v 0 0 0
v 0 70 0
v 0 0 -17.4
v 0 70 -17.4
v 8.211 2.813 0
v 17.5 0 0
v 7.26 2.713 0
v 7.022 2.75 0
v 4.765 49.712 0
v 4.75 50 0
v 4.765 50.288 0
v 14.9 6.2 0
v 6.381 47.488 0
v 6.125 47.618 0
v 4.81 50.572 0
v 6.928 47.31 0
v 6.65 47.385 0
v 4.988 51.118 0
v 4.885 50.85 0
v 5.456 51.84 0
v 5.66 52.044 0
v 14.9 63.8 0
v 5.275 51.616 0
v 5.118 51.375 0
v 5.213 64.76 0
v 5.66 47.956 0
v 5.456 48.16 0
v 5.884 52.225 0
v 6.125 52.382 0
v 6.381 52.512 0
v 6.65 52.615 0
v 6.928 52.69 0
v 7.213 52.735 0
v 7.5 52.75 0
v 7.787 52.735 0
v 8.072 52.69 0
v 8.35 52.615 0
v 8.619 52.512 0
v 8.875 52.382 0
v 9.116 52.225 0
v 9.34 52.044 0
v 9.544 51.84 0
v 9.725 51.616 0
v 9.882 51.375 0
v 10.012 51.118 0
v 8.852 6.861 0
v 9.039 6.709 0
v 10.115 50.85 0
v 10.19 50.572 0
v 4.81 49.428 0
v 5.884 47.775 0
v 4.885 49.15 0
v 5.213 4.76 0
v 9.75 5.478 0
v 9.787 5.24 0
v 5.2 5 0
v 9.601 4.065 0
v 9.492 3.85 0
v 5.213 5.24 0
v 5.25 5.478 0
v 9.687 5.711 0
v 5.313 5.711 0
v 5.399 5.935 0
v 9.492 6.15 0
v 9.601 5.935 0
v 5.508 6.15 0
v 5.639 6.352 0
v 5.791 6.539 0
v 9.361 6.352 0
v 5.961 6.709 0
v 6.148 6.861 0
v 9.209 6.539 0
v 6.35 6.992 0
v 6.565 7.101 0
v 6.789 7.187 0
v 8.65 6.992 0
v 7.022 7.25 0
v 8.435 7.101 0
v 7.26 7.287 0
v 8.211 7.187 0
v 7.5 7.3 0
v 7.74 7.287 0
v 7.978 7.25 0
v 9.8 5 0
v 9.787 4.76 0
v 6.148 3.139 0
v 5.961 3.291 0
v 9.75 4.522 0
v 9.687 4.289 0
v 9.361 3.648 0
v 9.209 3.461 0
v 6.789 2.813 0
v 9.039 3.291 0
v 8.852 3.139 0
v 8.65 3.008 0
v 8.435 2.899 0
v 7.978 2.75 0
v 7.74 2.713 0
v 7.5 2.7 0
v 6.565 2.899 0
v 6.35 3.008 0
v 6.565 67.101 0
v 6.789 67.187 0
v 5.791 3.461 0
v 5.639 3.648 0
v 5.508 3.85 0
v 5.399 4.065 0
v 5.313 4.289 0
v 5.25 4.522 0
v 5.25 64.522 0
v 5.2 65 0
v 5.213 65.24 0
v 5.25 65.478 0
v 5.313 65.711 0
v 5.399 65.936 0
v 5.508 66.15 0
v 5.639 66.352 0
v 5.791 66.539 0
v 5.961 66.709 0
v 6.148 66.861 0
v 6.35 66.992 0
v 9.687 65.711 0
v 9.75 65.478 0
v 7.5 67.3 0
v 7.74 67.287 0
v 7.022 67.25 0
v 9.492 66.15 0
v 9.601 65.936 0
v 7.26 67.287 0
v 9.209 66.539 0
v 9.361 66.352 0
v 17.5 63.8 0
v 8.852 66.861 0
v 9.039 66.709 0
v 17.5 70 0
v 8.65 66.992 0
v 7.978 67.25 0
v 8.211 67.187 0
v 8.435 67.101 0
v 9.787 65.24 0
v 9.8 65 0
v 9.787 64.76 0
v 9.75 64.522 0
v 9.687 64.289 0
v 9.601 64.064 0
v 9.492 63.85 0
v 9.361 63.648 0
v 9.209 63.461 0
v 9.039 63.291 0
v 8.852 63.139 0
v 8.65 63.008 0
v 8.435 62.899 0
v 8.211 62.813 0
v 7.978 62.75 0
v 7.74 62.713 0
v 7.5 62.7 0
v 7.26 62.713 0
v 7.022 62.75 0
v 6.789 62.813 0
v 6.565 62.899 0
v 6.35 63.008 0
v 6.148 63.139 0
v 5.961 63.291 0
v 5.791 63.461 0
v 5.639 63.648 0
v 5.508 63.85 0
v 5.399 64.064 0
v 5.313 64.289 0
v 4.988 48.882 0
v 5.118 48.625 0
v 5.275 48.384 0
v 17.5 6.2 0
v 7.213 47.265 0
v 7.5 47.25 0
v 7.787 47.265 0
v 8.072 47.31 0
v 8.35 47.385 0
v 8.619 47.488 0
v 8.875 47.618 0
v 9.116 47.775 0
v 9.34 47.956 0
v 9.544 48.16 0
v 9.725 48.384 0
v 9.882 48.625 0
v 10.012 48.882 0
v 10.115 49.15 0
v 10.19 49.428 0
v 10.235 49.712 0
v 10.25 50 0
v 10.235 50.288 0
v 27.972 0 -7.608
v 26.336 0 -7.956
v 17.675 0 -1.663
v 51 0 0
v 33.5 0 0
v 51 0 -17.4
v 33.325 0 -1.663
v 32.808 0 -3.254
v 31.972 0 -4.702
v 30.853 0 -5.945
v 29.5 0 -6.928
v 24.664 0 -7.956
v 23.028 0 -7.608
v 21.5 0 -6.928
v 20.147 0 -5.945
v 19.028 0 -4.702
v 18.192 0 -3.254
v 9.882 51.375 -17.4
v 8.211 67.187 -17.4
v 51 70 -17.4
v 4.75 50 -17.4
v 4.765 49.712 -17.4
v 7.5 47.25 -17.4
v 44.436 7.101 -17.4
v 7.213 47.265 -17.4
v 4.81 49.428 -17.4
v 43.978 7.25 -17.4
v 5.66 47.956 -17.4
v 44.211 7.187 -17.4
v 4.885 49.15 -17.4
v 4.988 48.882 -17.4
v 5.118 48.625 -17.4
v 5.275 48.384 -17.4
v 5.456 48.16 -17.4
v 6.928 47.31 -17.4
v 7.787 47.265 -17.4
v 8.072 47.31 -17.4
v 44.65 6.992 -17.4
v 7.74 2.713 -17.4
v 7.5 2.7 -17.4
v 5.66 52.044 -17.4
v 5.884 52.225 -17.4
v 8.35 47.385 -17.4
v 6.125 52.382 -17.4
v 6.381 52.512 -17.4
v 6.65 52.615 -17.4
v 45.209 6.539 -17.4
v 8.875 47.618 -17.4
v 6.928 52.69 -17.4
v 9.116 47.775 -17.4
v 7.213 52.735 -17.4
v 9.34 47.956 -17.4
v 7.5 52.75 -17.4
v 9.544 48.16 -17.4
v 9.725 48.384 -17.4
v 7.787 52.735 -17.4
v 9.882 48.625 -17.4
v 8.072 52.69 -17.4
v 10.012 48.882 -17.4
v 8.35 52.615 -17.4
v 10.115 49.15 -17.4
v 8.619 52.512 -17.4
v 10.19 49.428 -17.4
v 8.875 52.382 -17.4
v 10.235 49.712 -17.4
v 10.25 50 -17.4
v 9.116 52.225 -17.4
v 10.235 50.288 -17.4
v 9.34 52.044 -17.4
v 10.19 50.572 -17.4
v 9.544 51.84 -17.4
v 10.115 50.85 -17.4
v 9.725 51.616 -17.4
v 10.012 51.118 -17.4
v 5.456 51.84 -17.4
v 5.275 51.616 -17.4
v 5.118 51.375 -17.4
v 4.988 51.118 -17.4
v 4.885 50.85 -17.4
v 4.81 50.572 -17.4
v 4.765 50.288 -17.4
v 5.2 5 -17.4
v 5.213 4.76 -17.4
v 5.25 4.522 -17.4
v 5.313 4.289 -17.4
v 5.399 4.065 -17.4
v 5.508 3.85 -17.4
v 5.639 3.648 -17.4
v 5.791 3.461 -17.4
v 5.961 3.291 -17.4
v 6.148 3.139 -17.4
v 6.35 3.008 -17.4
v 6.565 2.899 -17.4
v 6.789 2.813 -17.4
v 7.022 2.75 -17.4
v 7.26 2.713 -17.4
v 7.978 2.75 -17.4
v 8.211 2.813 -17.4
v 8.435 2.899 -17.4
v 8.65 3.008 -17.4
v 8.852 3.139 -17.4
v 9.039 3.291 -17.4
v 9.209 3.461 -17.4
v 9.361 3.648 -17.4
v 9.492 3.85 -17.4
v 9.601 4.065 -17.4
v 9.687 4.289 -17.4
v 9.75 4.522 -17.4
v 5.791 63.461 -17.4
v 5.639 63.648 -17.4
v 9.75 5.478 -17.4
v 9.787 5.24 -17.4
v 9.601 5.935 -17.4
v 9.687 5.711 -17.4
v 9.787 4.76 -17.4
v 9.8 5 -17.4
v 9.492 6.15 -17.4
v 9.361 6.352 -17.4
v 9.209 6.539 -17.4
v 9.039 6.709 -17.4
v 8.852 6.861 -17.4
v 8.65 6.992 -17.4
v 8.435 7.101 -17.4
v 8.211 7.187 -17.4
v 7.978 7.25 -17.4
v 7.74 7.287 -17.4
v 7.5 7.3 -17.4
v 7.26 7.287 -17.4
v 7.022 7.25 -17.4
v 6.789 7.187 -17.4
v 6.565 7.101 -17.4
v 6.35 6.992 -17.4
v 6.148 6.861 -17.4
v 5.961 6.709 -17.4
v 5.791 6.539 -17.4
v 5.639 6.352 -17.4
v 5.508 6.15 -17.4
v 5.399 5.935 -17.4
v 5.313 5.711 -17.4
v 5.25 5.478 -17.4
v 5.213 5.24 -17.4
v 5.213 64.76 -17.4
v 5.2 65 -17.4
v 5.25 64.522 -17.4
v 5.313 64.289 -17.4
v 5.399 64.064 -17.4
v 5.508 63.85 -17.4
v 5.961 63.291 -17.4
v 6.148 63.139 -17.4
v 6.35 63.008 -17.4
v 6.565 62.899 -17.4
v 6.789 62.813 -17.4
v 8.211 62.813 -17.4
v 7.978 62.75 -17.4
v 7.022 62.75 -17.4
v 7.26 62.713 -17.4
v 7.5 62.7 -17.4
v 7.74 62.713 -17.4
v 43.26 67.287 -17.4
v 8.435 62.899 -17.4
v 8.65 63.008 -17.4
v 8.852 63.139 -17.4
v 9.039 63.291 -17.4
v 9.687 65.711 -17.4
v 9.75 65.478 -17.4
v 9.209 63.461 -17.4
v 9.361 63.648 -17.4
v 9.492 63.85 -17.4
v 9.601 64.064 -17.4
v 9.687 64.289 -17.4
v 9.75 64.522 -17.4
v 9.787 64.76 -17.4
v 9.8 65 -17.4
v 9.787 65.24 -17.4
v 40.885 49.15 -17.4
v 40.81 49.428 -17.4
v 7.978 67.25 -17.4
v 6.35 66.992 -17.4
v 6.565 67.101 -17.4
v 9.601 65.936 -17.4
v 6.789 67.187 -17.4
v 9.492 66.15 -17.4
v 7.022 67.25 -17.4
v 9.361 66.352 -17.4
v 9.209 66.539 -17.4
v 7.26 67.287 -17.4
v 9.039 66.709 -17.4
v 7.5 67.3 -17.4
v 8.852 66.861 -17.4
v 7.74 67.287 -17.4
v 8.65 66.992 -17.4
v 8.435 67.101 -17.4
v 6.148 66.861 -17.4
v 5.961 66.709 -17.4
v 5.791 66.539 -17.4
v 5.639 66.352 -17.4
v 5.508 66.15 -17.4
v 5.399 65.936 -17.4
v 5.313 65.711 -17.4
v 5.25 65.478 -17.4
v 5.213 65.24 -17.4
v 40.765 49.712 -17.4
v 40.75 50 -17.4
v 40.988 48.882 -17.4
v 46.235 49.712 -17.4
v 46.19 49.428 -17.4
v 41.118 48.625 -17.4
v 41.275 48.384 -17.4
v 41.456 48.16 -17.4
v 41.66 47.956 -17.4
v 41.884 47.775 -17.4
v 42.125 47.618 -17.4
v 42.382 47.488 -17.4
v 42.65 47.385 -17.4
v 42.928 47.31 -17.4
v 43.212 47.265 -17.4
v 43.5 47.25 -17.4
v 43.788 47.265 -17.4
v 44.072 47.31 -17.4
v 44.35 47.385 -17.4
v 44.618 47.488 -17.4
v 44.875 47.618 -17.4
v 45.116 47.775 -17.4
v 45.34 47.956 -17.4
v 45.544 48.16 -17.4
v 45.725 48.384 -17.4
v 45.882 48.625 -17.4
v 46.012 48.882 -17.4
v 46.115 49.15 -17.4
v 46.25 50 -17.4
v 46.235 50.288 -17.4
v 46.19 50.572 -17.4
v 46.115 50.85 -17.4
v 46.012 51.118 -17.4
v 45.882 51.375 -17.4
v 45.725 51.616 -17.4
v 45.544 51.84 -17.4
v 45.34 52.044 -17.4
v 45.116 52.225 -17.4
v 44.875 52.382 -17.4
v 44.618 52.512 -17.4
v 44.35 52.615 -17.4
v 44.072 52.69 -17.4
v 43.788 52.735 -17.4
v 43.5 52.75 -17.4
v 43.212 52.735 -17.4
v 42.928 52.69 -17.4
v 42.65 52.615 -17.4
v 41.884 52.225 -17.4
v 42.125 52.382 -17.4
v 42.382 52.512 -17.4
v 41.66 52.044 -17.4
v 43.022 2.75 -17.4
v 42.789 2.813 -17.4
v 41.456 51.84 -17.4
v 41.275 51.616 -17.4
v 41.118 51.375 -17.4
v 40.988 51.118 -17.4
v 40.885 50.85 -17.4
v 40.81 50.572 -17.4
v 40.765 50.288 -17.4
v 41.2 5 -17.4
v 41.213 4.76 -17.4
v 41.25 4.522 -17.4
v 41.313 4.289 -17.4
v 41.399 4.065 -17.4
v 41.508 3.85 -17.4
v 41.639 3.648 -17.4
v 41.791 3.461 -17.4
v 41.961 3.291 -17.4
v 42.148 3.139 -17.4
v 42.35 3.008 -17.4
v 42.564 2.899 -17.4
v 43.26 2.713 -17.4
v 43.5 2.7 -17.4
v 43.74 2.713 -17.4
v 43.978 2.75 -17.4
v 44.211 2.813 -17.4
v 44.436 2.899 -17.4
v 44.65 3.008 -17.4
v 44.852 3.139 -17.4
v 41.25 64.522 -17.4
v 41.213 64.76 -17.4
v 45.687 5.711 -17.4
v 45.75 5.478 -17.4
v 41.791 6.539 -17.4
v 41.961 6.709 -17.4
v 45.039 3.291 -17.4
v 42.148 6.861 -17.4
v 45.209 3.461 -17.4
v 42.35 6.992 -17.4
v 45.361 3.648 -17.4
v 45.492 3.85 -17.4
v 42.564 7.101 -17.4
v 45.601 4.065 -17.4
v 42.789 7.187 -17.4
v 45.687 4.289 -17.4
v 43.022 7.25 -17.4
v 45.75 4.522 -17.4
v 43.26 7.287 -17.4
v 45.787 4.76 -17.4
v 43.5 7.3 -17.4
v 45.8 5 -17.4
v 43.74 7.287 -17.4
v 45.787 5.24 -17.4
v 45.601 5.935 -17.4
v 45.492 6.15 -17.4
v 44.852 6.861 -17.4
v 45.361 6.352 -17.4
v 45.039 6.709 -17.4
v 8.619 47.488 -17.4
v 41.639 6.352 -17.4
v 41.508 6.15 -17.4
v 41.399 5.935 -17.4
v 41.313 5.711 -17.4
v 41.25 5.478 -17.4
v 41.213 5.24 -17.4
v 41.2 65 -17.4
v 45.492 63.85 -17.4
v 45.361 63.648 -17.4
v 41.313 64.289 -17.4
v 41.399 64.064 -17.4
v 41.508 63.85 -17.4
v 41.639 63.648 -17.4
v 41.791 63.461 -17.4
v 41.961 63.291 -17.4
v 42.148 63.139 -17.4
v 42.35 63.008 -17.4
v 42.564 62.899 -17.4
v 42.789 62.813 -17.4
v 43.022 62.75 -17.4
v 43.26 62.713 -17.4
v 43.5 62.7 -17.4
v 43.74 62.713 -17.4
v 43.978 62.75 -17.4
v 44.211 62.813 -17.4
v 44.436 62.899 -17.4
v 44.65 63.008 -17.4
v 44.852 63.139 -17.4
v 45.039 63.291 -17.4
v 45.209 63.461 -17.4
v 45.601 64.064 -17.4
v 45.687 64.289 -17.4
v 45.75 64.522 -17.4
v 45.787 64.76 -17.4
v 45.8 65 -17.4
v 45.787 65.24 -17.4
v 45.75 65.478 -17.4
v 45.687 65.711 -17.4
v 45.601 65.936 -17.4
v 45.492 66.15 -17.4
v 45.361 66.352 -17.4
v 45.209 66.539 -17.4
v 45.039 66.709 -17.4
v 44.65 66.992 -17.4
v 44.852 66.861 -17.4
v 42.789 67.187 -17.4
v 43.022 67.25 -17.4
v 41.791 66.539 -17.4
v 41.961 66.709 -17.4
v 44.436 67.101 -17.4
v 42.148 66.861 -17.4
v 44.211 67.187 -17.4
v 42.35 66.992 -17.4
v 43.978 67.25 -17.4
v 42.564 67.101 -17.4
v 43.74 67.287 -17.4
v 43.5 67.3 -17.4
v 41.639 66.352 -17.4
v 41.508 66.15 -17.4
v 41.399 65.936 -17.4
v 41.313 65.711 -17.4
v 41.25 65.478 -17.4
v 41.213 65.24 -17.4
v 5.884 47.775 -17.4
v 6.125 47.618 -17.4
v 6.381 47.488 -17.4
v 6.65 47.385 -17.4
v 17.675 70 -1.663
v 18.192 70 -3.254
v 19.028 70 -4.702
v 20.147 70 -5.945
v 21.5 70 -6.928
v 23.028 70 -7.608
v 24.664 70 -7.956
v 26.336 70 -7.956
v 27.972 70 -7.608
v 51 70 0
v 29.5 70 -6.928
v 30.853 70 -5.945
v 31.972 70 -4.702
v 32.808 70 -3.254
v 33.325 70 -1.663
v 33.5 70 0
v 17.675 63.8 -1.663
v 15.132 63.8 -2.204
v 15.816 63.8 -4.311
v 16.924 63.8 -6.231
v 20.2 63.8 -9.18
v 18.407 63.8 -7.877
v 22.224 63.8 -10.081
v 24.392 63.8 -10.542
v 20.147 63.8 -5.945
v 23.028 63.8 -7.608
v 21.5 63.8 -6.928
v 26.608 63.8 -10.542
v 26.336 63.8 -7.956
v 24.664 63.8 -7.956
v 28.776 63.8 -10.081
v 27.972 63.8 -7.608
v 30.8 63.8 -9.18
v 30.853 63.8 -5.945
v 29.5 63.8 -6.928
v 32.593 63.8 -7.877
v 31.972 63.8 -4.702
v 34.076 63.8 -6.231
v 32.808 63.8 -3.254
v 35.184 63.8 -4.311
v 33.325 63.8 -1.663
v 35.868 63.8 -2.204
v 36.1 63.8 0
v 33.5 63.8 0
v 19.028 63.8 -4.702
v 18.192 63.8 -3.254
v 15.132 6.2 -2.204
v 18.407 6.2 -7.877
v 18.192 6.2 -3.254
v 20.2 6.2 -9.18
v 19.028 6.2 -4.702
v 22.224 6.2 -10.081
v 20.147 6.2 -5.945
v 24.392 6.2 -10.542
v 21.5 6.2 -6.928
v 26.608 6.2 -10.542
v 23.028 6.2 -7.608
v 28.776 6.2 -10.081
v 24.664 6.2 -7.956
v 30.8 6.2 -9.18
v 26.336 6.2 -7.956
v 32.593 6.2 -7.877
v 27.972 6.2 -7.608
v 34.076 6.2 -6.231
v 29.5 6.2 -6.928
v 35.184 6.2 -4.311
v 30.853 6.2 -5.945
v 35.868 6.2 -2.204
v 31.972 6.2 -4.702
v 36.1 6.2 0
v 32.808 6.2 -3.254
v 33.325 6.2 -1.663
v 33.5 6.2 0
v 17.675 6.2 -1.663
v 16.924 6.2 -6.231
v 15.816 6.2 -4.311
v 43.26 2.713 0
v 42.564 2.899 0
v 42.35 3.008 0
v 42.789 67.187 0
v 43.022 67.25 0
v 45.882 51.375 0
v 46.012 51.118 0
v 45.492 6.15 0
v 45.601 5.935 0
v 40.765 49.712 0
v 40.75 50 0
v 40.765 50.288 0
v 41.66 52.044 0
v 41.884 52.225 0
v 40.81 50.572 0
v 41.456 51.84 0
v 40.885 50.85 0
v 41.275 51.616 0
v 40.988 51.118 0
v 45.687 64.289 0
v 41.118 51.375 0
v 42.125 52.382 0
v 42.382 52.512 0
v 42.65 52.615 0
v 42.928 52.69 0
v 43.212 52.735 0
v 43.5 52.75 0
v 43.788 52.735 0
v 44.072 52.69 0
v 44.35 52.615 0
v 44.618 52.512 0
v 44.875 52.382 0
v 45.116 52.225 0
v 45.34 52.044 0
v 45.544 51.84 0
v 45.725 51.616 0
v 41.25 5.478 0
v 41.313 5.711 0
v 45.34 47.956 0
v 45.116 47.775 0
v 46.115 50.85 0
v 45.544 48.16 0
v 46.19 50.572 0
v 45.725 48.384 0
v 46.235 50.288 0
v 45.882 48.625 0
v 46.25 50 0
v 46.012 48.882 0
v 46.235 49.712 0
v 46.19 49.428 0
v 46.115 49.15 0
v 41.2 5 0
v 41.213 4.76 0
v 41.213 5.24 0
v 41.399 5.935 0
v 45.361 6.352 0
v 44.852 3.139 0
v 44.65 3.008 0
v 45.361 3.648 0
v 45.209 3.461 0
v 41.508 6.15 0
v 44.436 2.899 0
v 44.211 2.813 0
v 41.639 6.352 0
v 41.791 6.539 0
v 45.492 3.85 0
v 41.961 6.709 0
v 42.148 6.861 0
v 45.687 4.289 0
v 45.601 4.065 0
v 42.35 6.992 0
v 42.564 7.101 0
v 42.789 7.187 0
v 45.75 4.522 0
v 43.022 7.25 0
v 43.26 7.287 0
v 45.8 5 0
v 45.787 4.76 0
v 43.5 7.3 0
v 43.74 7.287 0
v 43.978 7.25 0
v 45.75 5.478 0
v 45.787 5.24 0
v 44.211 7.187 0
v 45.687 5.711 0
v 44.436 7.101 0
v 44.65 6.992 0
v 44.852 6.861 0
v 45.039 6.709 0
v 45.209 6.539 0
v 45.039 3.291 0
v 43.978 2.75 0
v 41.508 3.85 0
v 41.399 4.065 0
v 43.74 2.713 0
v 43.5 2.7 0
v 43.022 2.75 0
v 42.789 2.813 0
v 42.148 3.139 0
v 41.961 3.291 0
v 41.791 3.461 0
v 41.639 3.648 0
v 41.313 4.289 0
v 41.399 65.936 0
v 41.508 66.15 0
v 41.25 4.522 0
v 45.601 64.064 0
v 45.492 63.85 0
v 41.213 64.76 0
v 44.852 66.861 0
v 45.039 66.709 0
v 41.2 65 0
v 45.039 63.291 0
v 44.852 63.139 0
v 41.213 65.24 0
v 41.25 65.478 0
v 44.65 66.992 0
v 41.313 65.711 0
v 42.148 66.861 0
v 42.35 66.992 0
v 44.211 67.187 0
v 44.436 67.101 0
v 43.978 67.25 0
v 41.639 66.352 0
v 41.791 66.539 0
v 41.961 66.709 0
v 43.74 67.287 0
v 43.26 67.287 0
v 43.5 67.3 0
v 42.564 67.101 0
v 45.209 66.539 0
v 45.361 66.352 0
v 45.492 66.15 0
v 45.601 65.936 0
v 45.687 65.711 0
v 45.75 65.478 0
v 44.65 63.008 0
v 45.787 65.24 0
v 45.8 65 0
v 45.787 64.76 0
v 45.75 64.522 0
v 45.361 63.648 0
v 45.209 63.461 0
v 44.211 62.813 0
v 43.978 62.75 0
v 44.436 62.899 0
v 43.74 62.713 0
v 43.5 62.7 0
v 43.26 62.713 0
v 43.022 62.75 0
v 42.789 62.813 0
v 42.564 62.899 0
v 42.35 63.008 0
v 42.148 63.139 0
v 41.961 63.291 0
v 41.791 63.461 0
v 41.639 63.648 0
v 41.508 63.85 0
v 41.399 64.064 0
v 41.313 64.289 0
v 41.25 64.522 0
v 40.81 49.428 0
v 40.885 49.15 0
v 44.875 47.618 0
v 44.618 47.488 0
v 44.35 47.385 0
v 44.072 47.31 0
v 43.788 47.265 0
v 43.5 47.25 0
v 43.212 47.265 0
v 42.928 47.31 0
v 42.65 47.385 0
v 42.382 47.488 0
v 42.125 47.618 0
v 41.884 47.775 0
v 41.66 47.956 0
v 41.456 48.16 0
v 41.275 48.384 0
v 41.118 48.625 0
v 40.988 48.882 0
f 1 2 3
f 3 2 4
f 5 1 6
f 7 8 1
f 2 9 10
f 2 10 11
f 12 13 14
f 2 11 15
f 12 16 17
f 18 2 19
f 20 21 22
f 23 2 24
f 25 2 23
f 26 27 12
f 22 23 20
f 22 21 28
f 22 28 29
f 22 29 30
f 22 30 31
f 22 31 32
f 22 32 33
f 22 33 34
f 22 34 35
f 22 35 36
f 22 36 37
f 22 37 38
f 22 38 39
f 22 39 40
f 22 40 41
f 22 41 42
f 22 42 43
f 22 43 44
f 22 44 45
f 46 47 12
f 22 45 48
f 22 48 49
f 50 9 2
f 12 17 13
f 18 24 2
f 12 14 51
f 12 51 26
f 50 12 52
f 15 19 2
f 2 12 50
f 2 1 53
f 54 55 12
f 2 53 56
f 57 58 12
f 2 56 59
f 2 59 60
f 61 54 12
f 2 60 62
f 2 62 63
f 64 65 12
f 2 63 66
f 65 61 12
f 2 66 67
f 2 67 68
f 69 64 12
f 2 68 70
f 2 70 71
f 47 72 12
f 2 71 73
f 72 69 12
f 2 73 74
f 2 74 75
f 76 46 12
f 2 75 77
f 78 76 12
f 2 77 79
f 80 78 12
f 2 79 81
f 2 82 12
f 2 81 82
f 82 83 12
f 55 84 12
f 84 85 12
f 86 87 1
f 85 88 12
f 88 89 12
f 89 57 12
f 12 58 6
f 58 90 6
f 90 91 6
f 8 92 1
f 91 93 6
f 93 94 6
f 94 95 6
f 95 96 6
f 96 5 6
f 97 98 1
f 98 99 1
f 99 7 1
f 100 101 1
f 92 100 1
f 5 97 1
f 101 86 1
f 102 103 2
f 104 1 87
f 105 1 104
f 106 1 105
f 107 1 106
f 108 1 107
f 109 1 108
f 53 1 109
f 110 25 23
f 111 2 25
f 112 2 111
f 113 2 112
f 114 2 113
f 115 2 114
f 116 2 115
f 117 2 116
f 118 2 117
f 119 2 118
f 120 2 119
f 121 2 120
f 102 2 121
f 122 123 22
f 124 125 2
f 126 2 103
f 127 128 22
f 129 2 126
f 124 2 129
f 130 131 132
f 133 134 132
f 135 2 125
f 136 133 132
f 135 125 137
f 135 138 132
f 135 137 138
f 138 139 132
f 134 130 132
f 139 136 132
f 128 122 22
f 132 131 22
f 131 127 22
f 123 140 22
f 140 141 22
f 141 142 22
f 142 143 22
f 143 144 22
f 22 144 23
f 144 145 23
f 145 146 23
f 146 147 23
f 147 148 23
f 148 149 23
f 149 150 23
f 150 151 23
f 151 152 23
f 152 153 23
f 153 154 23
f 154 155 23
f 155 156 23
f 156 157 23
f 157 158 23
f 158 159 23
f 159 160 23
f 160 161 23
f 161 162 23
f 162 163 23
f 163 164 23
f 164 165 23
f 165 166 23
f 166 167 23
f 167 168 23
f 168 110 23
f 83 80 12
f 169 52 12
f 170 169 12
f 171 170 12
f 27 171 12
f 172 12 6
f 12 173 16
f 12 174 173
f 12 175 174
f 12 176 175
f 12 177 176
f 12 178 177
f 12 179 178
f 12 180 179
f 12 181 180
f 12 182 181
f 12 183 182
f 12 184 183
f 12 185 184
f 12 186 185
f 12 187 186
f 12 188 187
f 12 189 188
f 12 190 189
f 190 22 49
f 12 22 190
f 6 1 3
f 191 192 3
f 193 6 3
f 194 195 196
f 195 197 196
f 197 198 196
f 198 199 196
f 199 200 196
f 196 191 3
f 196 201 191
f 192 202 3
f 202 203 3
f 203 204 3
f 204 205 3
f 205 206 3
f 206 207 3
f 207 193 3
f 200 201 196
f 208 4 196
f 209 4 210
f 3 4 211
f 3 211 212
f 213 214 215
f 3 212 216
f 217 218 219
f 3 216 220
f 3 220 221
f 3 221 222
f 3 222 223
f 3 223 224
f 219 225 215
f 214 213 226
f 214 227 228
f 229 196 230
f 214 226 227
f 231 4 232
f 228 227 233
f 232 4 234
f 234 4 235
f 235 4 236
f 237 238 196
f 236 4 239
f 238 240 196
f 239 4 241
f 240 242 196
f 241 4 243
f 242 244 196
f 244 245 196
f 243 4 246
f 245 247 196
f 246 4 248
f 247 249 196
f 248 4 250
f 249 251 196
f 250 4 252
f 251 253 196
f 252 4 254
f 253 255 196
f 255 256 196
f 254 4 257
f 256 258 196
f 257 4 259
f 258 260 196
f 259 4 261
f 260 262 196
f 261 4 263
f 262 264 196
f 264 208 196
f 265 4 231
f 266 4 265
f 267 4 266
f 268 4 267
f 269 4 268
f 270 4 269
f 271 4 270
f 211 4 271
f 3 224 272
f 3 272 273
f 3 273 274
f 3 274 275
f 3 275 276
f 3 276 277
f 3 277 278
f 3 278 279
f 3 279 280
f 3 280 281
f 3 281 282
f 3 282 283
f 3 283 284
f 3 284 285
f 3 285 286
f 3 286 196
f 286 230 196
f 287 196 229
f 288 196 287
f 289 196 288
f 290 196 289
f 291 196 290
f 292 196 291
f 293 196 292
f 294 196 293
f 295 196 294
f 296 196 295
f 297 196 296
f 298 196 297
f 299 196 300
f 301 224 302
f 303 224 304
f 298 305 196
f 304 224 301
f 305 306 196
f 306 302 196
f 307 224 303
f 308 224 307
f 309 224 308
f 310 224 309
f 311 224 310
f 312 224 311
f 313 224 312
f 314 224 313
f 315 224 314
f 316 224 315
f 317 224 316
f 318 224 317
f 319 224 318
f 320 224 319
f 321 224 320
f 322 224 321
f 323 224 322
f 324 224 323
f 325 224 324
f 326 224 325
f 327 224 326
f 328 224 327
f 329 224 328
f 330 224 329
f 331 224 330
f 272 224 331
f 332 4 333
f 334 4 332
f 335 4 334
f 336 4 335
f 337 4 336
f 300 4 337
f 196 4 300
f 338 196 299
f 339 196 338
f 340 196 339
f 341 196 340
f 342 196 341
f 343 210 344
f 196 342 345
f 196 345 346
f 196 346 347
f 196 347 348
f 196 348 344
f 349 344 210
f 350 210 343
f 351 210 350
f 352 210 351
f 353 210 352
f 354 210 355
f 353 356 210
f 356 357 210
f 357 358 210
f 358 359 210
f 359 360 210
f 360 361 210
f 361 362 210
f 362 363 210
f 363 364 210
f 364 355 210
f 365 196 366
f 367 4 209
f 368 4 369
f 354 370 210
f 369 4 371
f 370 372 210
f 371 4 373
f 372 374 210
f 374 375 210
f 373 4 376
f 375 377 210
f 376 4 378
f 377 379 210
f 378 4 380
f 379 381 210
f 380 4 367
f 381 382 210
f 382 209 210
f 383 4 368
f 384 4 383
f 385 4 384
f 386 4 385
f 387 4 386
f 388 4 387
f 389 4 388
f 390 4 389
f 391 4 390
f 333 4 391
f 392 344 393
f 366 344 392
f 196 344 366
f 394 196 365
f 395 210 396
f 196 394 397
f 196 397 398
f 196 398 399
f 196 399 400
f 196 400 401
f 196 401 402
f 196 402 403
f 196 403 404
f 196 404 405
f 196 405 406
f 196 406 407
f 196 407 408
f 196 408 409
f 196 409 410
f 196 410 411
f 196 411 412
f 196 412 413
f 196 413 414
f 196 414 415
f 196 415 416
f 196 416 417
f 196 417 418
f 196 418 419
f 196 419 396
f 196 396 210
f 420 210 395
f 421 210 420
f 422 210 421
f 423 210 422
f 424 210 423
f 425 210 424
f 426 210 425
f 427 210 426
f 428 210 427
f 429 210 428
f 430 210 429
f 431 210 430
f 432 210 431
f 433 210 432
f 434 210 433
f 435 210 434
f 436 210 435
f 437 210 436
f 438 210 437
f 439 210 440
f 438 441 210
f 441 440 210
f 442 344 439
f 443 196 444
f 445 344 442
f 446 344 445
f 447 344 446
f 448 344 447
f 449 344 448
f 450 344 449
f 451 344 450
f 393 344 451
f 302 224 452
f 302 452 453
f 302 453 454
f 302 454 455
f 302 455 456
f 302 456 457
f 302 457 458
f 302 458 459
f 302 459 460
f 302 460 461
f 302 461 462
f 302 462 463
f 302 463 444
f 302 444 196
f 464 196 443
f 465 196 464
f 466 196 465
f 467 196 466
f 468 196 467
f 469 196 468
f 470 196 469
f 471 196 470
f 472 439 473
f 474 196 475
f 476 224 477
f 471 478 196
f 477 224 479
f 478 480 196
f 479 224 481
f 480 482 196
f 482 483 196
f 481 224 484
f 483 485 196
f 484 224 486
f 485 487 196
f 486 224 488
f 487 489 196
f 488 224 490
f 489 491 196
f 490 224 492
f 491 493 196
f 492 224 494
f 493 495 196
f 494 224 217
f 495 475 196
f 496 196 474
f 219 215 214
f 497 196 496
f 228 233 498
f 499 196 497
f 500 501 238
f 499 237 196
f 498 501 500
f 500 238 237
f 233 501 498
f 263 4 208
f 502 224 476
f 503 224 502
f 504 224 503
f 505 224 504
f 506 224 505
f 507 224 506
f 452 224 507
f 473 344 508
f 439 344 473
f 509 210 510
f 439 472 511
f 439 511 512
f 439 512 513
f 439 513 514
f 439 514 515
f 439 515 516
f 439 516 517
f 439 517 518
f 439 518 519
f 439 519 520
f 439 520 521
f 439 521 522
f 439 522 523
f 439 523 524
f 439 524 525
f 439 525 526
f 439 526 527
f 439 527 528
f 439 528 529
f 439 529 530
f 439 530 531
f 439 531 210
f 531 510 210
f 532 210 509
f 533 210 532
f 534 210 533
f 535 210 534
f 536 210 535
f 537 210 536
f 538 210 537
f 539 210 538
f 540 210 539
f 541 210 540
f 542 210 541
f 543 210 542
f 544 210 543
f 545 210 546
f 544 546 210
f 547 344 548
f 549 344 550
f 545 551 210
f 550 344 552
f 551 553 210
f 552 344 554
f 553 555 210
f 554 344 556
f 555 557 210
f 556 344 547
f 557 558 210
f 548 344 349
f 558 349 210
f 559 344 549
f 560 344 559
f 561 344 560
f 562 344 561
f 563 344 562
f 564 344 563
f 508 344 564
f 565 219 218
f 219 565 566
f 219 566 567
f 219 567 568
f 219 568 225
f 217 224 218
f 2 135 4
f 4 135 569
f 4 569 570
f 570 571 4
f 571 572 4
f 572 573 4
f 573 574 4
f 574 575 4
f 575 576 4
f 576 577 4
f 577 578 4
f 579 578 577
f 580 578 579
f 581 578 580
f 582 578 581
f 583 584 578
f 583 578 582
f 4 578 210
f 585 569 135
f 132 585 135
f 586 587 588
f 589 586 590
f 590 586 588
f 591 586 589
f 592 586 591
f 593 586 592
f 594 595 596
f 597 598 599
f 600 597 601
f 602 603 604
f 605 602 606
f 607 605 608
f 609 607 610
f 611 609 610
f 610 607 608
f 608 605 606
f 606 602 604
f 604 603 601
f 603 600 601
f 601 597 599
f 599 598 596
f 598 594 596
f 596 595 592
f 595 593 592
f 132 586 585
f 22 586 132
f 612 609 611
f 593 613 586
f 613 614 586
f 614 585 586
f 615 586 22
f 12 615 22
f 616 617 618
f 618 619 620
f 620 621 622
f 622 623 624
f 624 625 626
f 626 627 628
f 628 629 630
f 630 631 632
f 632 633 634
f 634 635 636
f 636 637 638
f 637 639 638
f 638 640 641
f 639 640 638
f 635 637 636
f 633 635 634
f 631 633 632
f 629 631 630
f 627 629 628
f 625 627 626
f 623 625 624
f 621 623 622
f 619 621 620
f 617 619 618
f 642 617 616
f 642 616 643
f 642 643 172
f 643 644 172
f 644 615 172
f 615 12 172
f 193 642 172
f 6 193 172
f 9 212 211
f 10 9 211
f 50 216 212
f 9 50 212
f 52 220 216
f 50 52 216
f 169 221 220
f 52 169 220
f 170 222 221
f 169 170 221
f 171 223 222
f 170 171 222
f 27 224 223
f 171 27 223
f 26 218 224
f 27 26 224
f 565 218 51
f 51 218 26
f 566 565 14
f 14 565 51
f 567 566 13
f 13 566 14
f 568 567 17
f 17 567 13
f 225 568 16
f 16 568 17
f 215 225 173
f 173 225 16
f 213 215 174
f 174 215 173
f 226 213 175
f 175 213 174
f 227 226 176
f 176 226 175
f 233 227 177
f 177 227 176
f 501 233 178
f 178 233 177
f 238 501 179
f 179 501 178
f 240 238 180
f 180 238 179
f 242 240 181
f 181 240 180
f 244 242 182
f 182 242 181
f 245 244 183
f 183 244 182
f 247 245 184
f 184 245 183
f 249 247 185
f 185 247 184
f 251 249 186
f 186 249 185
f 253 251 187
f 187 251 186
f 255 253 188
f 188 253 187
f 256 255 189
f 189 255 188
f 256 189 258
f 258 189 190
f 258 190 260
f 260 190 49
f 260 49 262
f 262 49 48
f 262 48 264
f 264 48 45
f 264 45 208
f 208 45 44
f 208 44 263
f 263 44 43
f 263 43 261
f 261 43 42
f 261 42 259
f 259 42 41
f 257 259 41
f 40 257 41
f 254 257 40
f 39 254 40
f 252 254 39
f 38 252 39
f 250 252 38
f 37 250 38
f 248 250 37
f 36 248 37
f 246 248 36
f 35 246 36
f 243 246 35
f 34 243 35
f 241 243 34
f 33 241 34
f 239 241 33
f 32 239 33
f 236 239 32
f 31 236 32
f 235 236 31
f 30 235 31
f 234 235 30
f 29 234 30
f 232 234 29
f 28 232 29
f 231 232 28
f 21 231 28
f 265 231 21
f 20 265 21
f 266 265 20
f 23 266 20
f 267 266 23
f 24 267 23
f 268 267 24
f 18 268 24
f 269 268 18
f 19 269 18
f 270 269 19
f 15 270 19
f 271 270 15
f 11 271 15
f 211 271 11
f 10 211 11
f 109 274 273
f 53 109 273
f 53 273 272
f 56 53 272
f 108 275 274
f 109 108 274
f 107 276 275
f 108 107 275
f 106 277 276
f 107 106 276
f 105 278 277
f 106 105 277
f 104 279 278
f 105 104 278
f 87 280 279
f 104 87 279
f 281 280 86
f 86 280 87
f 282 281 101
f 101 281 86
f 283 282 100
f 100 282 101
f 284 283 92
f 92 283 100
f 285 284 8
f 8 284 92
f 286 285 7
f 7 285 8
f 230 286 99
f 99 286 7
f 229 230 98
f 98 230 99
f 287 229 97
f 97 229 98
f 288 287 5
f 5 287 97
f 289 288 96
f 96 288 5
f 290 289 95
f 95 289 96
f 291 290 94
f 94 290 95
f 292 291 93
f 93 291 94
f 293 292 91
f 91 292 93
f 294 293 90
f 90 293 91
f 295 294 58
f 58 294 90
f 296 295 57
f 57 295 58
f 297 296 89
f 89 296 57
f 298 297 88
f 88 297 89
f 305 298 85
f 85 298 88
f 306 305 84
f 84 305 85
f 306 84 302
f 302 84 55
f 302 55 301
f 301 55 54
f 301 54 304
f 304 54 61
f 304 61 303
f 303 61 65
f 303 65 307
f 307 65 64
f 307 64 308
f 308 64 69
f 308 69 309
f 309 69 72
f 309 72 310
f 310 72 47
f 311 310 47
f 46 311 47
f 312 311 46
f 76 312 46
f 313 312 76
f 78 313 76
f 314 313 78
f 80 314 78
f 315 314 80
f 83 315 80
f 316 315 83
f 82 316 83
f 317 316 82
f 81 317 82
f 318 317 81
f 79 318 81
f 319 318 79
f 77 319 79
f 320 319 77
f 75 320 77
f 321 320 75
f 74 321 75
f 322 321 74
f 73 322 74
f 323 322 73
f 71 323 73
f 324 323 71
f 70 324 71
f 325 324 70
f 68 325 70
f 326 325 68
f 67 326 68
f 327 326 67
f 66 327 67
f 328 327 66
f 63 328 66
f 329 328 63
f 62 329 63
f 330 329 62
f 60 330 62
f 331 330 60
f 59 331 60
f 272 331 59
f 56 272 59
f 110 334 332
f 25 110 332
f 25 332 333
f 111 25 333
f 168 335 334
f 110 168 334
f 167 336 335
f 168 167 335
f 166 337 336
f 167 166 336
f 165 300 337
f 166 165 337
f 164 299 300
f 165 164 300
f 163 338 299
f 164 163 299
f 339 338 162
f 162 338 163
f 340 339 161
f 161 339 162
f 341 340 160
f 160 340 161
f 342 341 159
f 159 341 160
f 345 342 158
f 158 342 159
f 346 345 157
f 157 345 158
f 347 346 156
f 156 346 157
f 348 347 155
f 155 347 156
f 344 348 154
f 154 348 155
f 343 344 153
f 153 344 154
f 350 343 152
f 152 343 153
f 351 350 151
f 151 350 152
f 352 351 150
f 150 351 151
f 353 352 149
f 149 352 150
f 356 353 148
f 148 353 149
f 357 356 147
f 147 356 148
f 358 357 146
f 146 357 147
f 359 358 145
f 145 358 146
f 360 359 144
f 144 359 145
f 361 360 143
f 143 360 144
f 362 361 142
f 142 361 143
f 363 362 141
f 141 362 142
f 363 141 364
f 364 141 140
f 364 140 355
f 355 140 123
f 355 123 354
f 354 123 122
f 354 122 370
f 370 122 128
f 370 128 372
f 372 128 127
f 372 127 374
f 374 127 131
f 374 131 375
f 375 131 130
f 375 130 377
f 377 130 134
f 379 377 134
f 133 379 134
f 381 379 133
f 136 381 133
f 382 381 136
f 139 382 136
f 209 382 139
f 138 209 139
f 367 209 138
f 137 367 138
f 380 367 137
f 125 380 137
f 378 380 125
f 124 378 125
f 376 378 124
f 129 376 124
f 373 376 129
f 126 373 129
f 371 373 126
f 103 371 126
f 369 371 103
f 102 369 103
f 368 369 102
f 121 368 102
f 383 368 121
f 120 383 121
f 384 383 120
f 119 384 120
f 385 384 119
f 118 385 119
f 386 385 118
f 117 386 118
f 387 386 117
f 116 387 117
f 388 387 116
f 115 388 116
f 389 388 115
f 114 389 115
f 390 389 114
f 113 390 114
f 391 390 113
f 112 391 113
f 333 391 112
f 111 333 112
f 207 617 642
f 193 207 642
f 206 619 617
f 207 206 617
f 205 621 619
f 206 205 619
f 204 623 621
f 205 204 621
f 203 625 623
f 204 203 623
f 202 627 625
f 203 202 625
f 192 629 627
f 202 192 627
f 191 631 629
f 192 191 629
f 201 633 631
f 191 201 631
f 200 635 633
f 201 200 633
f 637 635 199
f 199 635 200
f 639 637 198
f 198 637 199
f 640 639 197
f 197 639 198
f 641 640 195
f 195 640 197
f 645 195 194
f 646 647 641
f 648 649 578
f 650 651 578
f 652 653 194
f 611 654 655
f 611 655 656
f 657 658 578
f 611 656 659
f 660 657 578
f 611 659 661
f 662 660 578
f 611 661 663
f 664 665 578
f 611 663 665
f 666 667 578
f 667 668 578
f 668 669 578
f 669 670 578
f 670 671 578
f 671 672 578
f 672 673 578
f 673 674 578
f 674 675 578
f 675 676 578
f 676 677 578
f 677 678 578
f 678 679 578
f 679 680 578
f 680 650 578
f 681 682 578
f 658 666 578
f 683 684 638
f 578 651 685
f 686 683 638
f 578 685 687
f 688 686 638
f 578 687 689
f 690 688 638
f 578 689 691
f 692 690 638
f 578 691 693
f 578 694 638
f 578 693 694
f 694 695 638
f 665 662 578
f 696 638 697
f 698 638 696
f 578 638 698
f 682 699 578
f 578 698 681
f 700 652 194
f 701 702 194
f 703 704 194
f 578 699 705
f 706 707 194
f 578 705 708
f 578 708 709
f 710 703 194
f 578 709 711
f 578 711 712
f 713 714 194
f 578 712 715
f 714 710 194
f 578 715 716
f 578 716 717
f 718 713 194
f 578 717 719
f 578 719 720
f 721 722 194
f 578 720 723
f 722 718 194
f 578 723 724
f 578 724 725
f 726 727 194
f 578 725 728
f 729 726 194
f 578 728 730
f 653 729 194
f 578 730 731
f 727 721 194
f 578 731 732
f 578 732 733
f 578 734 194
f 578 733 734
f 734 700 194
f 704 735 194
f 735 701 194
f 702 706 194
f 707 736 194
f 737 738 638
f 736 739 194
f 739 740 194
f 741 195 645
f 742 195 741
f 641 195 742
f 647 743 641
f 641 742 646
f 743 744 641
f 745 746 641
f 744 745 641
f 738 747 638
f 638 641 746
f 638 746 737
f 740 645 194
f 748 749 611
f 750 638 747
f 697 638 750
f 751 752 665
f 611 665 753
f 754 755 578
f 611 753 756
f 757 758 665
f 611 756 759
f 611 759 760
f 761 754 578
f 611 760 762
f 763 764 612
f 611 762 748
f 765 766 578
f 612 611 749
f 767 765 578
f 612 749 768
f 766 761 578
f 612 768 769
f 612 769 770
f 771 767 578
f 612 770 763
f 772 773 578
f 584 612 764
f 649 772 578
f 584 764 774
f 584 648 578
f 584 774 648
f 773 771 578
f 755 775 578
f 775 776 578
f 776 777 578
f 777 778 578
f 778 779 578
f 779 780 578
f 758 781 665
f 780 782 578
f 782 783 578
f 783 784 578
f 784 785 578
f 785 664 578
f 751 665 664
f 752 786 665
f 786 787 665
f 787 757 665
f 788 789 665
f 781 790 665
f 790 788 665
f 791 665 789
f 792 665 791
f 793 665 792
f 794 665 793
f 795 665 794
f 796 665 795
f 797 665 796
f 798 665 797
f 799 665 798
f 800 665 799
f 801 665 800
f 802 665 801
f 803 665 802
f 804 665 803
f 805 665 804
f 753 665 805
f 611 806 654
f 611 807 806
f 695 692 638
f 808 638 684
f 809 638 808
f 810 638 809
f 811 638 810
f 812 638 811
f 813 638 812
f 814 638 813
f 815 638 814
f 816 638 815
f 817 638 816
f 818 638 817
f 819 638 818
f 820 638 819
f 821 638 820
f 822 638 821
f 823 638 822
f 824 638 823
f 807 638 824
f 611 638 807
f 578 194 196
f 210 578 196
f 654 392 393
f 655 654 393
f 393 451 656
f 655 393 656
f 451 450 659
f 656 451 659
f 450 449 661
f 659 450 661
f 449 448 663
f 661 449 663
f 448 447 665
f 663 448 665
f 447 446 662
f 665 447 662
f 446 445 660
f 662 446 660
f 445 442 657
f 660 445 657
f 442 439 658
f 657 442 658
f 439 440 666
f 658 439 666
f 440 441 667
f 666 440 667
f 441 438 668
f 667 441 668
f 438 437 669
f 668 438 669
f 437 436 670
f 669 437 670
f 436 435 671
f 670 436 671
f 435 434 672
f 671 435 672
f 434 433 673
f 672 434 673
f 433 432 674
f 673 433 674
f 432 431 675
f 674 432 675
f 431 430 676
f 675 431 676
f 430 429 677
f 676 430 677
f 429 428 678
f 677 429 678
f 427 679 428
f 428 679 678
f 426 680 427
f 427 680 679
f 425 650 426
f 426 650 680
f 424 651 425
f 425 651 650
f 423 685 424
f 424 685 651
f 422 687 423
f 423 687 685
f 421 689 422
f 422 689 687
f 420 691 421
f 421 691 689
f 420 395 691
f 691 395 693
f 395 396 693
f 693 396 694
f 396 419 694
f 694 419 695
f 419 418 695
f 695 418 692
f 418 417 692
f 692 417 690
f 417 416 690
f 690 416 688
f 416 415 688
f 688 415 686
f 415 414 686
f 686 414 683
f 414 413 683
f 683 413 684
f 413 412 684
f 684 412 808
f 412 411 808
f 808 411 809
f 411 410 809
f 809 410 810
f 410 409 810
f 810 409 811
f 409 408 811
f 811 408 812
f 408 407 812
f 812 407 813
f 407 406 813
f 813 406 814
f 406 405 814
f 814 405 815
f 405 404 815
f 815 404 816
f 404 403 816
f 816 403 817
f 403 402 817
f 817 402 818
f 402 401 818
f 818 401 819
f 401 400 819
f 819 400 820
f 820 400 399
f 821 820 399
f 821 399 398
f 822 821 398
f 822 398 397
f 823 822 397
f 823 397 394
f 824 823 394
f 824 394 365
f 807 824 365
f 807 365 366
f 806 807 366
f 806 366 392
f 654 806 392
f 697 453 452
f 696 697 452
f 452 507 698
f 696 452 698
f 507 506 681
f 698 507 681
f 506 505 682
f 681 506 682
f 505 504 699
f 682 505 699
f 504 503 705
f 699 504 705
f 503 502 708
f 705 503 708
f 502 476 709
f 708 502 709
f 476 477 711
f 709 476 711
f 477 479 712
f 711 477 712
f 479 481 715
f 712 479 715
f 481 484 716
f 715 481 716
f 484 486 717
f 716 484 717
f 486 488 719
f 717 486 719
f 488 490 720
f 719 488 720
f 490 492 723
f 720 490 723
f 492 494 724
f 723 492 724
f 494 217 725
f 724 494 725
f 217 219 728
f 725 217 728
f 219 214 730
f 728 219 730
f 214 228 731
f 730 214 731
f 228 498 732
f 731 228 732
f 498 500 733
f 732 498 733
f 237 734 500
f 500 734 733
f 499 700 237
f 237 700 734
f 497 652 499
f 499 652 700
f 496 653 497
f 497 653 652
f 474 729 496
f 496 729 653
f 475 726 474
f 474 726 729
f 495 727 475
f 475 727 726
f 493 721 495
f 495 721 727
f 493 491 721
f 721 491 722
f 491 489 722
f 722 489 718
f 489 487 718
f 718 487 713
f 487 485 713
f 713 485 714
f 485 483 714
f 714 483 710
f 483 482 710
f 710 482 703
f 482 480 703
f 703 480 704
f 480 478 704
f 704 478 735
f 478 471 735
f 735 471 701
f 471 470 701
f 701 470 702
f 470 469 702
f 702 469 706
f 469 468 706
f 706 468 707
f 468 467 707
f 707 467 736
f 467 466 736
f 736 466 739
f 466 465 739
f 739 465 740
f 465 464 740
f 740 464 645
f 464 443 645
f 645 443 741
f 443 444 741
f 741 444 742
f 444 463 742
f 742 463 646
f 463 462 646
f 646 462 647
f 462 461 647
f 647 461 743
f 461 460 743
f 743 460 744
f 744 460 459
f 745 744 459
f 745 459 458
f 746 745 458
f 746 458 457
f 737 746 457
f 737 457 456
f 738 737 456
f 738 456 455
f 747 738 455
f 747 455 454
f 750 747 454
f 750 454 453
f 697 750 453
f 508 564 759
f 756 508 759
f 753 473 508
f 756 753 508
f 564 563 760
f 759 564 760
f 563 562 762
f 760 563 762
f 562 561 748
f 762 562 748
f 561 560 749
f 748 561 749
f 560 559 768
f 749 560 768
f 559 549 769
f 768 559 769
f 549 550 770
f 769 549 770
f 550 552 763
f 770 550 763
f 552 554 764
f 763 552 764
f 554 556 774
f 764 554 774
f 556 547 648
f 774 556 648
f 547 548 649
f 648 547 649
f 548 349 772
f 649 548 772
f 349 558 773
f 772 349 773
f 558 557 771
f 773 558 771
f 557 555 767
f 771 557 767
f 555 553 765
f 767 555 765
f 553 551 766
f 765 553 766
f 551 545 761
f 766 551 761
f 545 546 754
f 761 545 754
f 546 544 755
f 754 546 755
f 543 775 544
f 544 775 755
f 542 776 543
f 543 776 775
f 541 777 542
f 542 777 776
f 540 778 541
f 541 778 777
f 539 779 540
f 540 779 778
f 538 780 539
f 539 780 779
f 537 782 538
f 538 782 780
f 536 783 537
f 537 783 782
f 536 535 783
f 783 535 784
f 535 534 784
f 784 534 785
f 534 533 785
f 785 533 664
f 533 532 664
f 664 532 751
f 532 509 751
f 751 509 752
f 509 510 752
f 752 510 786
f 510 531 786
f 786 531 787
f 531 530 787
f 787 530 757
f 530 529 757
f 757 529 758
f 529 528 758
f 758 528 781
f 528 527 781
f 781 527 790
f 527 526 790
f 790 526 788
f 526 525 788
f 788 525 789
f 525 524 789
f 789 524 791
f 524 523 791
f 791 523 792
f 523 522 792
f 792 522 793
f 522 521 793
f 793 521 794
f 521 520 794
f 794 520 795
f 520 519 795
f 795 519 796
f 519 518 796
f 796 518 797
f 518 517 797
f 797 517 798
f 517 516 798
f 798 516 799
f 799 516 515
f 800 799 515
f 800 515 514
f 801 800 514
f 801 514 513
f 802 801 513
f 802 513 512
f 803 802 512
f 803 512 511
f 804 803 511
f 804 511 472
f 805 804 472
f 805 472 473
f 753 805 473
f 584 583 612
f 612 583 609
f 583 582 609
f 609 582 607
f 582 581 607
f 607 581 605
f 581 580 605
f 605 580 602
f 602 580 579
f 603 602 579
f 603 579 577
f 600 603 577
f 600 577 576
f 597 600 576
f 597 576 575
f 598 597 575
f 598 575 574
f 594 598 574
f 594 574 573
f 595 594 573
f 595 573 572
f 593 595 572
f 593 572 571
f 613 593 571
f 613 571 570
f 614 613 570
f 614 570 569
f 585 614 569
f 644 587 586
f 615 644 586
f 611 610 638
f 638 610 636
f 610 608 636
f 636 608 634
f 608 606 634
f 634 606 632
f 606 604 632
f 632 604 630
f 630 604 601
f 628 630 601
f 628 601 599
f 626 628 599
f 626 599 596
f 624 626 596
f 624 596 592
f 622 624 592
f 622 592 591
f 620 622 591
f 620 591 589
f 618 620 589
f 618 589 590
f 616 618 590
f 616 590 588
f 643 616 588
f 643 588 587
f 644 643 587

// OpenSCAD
// file: library.scad
//rounded cube Functions from: http://www.thingiverse.com/thing:38069


module cube_fillet(size,radius=-1,vertical,top,bottom,center=false,$fn=0){
    if (center) {
        cube_fillet_inside(size, radius, vertical, top, bottom, $fn=$fn);
    } else {
        translate([size[0]/2, size[1]/2, size[2]/2])
            cube_fillet_inside(size, radius, vertical, top, bottom, $fn=$fn);
    }
}
module fillet(radius, height=100, $fn=60) {  
    //this creates negative of fillet,
    //i.e. thing to be substracted from object
    translate([-radius, -radius, -height/2-0.01])
        difference() {
            cube([radius*2, radius*2, height+0.02]);
            cylinder(r=radius, h=height+0.02, $fn=$fn);
        }
}

module cube_negative_fillet(size,radius=-1,vertical, top,bottom,$fn=0){
    j=[1,0,1,0];

    for (i=[0:3]) {
        if (radius > -1) {
            rotate([0, 0, 90*i])
                translate([size[1-j[i]]/2, size[j[i]]/2, 0])
                    fillet(radius, size[2], $fn=$fn);
        } else {
            rotate([0, 0, 90*i])
                translate([size[1-j[i]]/2, size[j[i]]/2, 0])
                    fillet(vertical[i], size[2], $fn=$fn);

        }
        rotate([90*i, -90, 0])
            translate([size[2]/2, size[j[i]]/2, 0 ])
                fillet(top[i], size[1-j[i]], $fn=$fn);
        rotate([90*(4-i), 90, 0])
            translate([size[2]/2, size[j[i]]/2, 0])
                fillet(bottom[i], size[1-j[i]], $fn=$fn);
    }
}

module cube_fillet_inside(size,radius=-1,vertical,top,bottom,$fn=0){

    if (radius == 0) {
        cube(size, center=true);
    } else {
        difference() {
            cube(size, center=true);
            cube_negative_fillet(size, radius, vertical, top, bottom, $fn=$fn);
        }
    }
}
// file: dimensions.scad
// Dimensions
// Author: sdavi


LM8UU = [8, 15, 24];//rod diameter,outter diameter, length
LM12UU = [12, 21, 30];
LM12LUU = [12, 21, 57];
LM12UUx2 = [LM12UU[0], LM12UU[1], LM12UU[2]*2];

BEARING_624 = [4,13,5]; //inner diameter(hole), outter diameter, thickness (http://reprap.org/wiki/Ball_bearing)
BEARING_2x624 = [4, 13, 10]; // 2 624 bearings together, good size for GT2

BEARING_6300 = [10,35,11]; //inner diameter, outer diameter, thickness

vslot_wheel = [23.89,10.23];	//23.89 & 10.23
vslot_wheel_hole = 5+0.5;
vslot_wheel_eccentric = 7.2+0.5; //hole for eccentric spacer
vslot_wheel_spacer_length = 6.35;


t_nut_length = 15+1; //hole in center 1mm cleanance incase hole isnt actually center




GT2_belt_width = 6;
GT2_belt_pitch = 2;
GT2_belt_thickness = 1.38;
GT2_belt_tooth_height = 0.75;  
GT2_belt_tooth_ratio = 0.5;



GT2_pulley_geared_diameter=12.2;//measured from top of tooth to top of tooth opp side// 12.2 is for the 20 tooth pulley

//from metric (prusa i3)
m4_diameter = 4.6;
m4_nut_diameter = 7.6;
m4_nut_diameter_horizontal = 8.15;

m3_diameter = 3.6;
m3_nut_diameter = 5.3;
m3_nut_diameter_horizontal = 6.8;
m3_washer_diameter = 6.9;
//end i3 variables

m5_diameter = 5.5;

//Hex Head M3x30: Head 5.5mm flat to flat, 2.12mm thick
m3_hex_head_diameter = 5.5*2/sqrt(3) + 0.2;

M4 = m4_diameter;
M3 = m3_diameter;
M5 = m5_diameter;
m4_washer_thickness = 0.8; //flat and penny washers
m4_washer_diameter = 9.6;

nema17_holes = 31;// mm between screws
nema17_width = 42; //width
nema17_height = 48;
// file: configuration.scad
// Configuration
// Author: sdavi


include <dimensions.scad>
use <library.scad>


x_rod_distance = 45;

y_bearing = LM8UU;
x_bearing = LM8UU;
//z_bearing = LM12UUx2;
z_bearing = LM12LUU;
belt_bearing = BEARING_2x624;


end_belt_bearing_distance = 25;// distance between 2 bearings on y-ends
belt_clearance = 9.5; //space for belts
x_belt_clearance = 5; //spacing between x-axis vslot and belt

frame_screw = M5; //m5 screws for v/tslot

// calculated vars


//y bearing block
y_bearing_block_length = 2*y_bearing[2] + M3*2 + 5;
//y_bearing_block_width = y_bearing[1]+5;
y_bearing_block_width = 20; //vslot frame width

y_bearing_block_height = 6+y_bearing[1]/2;

//xy_bearing_distance = y_bearing_block_width/2+belt_clearance+belt_bearing[1]/2; //distance between center of y-bearing to center of x-belt bearing 
xy_bearing_distance = vslot_wheel[1]/2+vslot_wheel_spacer_length+belt_clearance+belt_bearing[1]/2; //distance between center of v_slot to center of x-belt bearing 




//min height for belt bearings
min_beltbearing_height = max(((belt_bearing[2]+m4_washer_thickness*2) * 2), y_bearing_block_height);
// file: lib/z_carriage.scad
// z-carriage
// Author: sdavi


include <../configuration.scad>
include <../dimensions.scad>


z_bearing_block_width = z_bearing[1] + 15 + 15; // 15 to cater for head of M5 screw
z_bearing_block_depth = 34.8/2; // if printed at 0.3mm and for 40mm screws
z_bearing_block_length = 70;

bed_arm_length = z_bearing_block_width+34;
bed_arm_width = 20;

//M5x40 to attach to arm
//M4x??


//z_carriage(arm=0);
//z_carriage(arm=1);

//mirrored end
//translate([-5-z_bearing_block_width,0,5+z_bearing_block_length])z_carriage(arm=0);
//translate([-5,0,0])mirror([1,0,0])z_carriage(arm=1);


//illustration
//%color("red")translate([z_bearing_block_width/2, 0,z_bearing_block_length/2-z_bearing[2]/2]) cylinder(d=z_bearing[1], h=z_bearing[2], $fn=30);
//rod
//%color("gray")translate([z_bearing_block_width/2, 0,-30]) cylinder(d=z_bearing[0], h=100, $fn=30);


module z_carriage(arm=1){

	bearing_lip = z_bearing_block_length/2-z_bearing[2]/2 - 0.3;


	difference(){
		union(){
			cube([z_bearing_block_width, z_bearing_block_depth, z_bearing_block_length]);
			if(arm==1){

				translate([0,0,z_bearing_block_length-30])  //arm
					cube([bed_arm_length, z_bearing_block_depth, bed_arm_width]);

				//brace support
				translate([z_bearing_block_width, 0, z_bearing_block_length-30])
					rotate([-90,0,0])linear_extrude(height=z_bearing_block_depth, slices = 20)
					polygon( points=[[0,0],
							    		[20,0],
					              	[0,20]] 
					);						
			}
		} // end union

		//cutout for bearing
		
		translate([z_bearing_block_width/2, 0,-0.1]) cylinder(d=z_bearing[0]+4, h=z_bearing_block_length+0.2, $fn=30);
		
		translate([z_bearing_block_width/2, 0,bearing_lip]) cylinder(d=z_bearing[1]+0.2, h=z_bearing_block_length-bearing_lip*2, $fn=30);




			//Arm screws (M5)
			translate([0,0,z_bearing_block_length-20]){
				translate([15/2,-0.1,0]) rotate([-90,0,0]) cylinder(d=frame_screw, h=z_bearing_block_depth+0.2, $fn=60);
				translate([15+z_bearing[1]+15/2,-0.1,0]) rotate([-90,0,0]) cylinder(d=frame_screw, h=z_bearing_block_depth+0.2, $fn=60);
				translate([15+z_bearing[1]+15/2+t_nut_length,-0.1,0]) rotate([-90,0,0]) cylinder(d=frame_screw, h=z_bearing_block_depth+0.2, $fn=60);
				translate([15+z_bearing[1]+15/2+t_nut_length*2,-0.1,0]) rotate([-90,0,0]) cylinder(d=frame_screw, h=z_bearing_block_depth+0.2, $fn=60);
	
			}


		//block screws
		translate([15/2, -0.1, z_bearing_block_length-5]) { //top
			rotate([-90,0,0]) cylinder(d=M4, h=z_bearing_block_depth+0.2, $fn=60);
			translate([15+z_bearing[1], 0,0])rotate([-90,0,0]) cylinder(d=M4, h=z_bearing_block_depth+0.2, $fn=60);
		}

		/*translate([15/2, -0.1, z_bearing_block_length/2]) { //center
			rotate([-90,0,0]) cylinder(d=M4, h=z_bearing_block_depth+0.2, $fn=60); 
			translate([15+z_bearing[1], 0,0])rotate([-90,0,0]) cylinder(d=M4, h=z_bearing_block_depth+0.2, $fn=60); 
		}*/

		translate([15/2, -0.1, 5]) {//bottom
			rotate([-90,0,0]) cylinder(d=M4, h=z_bearing_block_depth+0.2, $fn=60); 	
			translate([15+z_bearing[1],0,0])rotate([-90,0,0]) cylinder(d=M4, h=z_bearing_block_depth+0.2, $fn=60); 
		}
				



	} //end difference


}
// main file
// z_carriage
// Author: sdavi


include <lib/z_carriage.scad>


rotate([-90,0,0])z_carriage(arm=0);
